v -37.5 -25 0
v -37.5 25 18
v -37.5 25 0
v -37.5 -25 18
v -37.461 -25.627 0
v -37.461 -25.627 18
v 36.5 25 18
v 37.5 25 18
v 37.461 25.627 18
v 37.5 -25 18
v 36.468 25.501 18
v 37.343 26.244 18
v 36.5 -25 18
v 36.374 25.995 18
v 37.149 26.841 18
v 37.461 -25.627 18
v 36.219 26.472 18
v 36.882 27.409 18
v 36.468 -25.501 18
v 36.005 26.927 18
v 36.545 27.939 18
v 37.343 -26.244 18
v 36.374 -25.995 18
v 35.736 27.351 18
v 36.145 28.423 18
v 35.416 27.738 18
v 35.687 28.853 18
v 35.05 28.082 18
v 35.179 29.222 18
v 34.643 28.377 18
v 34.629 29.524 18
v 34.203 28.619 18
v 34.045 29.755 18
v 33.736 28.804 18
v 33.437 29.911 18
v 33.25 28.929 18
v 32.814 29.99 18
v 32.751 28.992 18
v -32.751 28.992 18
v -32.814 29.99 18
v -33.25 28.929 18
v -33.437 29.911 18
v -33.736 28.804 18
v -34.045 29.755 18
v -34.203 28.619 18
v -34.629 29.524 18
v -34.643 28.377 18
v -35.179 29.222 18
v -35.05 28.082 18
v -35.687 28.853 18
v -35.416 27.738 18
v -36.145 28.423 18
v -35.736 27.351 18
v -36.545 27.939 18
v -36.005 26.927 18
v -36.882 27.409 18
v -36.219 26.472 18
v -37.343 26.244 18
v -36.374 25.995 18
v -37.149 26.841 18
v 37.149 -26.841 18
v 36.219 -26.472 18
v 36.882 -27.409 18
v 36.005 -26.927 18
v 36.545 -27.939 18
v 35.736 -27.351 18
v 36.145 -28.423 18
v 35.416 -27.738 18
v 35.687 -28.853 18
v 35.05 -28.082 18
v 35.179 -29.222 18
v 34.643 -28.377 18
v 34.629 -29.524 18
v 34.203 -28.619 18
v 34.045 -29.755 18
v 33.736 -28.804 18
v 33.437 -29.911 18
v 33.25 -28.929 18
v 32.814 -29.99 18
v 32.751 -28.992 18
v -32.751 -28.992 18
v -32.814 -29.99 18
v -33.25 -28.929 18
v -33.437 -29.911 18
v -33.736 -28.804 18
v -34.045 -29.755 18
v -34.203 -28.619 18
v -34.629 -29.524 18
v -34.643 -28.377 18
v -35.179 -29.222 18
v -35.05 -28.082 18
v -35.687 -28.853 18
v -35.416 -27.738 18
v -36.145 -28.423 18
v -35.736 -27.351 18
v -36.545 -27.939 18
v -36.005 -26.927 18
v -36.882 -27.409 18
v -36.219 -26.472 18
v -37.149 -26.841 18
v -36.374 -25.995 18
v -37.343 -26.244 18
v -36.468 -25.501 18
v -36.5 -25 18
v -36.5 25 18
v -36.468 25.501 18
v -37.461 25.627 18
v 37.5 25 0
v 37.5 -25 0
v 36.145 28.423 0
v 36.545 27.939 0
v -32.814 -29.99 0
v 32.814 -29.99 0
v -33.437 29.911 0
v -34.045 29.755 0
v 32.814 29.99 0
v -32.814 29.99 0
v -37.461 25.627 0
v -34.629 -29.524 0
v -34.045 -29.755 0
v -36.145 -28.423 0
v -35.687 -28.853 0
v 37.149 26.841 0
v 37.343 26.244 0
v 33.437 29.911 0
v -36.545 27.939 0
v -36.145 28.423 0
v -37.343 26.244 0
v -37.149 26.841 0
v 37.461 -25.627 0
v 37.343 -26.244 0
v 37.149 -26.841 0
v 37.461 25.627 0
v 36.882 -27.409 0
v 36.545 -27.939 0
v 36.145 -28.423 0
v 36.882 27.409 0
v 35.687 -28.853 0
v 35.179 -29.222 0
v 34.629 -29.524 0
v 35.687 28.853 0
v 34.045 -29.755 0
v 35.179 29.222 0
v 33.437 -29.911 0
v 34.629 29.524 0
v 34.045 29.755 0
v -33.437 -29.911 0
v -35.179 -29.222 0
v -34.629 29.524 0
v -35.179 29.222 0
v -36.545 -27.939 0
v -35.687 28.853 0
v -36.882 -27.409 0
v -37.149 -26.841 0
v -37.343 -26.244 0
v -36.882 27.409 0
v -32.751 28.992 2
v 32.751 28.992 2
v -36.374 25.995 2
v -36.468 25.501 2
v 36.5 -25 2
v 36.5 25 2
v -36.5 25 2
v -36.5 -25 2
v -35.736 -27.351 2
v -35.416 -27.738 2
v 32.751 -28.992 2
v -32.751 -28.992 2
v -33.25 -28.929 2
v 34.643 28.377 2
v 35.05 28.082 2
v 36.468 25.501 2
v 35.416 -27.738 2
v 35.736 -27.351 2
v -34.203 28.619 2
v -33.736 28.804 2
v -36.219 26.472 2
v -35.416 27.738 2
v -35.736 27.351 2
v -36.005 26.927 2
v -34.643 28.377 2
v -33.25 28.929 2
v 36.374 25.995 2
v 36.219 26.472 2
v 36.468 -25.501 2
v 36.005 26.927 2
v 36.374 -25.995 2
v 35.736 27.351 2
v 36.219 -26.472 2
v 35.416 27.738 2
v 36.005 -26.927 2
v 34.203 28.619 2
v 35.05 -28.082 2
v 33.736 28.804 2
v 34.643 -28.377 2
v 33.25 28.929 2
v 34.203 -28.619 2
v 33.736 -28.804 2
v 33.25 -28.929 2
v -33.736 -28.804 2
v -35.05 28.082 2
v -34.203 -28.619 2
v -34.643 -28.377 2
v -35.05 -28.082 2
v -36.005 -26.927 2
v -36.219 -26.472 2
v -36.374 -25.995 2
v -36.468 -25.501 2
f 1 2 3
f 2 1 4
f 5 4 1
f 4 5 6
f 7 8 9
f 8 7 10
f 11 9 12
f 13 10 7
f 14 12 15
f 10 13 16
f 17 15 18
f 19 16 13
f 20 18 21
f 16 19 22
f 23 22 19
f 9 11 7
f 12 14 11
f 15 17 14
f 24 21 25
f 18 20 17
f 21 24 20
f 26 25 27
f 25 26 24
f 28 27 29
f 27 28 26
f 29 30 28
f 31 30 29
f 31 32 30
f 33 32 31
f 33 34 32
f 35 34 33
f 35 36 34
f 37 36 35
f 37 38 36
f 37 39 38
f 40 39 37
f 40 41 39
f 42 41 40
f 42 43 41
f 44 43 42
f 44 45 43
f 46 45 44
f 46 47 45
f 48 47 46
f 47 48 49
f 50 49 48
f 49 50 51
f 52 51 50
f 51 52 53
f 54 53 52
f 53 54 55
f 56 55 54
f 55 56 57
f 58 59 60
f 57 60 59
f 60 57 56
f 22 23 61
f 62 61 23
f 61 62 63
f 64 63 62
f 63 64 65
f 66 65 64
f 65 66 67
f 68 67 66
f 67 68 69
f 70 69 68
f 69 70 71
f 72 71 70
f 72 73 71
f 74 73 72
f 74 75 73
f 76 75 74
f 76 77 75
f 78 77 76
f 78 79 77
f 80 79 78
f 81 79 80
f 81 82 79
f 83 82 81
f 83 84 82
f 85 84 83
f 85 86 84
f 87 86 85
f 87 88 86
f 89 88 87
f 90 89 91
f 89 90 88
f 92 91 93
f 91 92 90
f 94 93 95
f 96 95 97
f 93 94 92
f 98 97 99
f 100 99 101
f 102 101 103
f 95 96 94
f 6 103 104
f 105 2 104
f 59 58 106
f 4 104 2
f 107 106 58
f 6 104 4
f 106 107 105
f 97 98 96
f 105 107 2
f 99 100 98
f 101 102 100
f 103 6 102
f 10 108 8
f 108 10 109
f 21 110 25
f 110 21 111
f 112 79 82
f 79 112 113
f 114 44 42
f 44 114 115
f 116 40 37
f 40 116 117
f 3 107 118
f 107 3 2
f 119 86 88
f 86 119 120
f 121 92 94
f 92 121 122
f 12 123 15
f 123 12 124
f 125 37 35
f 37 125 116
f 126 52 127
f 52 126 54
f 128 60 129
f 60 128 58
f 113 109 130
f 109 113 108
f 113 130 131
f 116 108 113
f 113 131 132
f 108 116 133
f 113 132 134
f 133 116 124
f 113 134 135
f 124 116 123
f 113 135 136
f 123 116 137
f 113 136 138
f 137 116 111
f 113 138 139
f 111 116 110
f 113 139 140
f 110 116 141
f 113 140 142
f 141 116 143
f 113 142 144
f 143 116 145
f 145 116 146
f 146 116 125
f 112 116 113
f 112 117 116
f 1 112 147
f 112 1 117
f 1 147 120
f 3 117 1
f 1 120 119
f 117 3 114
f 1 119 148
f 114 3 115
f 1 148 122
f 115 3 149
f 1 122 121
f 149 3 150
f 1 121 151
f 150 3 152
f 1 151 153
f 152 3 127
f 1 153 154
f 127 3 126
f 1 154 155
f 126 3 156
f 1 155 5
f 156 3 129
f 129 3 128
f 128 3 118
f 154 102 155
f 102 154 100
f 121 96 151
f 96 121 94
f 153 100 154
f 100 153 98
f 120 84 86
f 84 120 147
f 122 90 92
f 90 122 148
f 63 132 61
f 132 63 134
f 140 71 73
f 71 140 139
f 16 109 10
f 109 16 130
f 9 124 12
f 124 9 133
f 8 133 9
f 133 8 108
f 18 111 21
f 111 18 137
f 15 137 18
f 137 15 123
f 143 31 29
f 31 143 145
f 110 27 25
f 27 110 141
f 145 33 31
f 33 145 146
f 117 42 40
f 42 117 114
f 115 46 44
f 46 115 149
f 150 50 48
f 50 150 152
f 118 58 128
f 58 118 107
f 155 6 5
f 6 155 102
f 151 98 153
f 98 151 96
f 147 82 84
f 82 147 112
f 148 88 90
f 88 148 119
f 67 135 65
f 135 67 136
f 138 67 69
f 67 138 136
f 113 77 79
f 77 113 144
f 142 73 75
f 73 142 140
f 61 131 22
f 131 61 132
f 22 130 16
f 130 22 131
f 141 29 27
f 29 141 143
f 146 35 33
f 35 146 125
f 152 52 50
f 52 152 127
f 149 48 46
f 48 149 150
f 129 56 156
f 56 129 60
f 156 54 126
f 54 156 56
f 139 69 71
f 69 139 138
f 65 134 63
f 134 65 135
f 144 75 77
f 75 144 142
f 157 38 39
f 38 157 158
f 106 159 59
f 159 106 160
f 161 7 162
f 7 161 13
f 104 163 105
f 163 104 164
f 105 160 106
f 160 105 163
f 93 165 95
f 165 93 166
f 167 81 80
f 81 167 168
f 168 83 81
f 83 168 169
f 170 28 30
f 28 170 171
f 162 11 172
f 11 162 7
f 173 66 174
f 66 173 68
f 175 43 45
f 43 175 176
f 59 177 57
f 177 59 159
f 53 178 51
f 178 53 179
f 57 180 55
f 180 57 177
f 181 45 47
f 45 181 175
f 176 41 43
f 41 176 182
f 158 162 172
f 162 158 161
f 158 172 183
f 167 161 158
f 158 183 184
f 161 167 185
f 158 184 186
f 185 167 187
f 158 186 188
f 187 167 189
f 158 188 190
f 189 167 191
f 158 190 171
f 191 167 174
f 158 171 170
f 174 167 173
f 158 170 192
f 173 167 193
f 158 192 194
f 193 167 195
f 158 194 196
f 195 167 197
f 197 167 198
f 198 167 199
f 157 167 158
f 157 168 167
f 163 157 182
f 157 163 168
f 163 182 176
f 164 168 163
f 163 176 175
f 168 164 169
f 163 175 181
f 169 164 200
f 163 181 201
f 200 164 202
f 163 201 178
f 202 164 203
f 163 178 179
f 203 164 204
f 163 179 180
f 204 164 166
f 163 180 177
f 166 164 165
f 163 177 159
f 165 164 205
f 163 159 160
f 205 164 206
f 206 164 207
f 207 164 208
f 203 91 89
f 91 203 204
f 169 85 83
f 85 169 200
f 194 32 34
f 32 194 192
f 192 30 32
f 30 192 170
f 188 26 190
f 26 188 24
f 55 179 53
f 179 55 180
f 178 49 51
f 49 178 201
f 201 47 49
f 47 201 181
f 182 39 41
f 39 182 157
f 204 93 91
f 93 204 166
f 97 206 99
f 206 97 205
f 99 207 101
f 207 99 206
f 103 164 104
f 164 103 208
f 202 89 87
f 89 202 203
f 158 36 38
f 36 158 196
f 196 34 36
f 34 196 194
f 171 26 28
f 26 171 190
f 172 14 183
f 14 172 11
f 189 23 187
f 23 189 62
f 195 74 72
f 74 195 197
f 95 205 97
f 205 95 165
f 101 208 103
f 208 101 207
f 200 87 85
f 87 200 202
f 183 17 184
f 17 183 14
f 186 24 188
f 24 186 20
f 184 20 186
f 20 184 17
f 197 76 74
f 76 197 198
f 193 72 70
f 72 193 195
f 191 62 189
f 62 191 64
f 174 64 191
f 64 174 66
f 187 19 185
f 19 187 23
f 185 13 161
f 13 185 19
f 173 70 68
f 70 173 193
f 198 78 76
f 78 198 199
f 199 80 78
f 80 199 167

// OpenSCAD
$fn = 50;


difference() {
	union() {
		hull() {
			translate(v = [-32.5000000000, 25.0000000000, 0]) {
				cylinder(h = 18, r = 5);
			}
			translate(v = [32.5000000000, 25.0000000000, 0]) {
				cylinder(h = 18, r = 5);
			}
			translate(v = [-32.5000000000, -25.0000000000, 0]) {
				cylinder(h = 18, r = 5);
			}
			translate(v = [32.5000000000, -25.0000000000, 0]) {
				cylinder(h = 18, r = 5);
			}
		}
	}
	union() {
		translate(v = [0, 0, 2]) {
			#hull() {
				translate(v = [-32.5000000000, 25.0000000000, 0]) {
					cylinder(h = 16, r = 4);
				}
				translate(v = [32.5000000000, 25.0000000000, 0]) {
					cylinder(h = 16, r = 4);
				}
				translate(v = [-32.5000000000, -25.0000000000, 0]) {
					cylinder(h = 16, r = 4);
				}
				translate(v = [32.5000000000, -25.0000000000, 0]) {
					cylinder(h = 16, r = 4);
				}
			}
		}
	}
}
